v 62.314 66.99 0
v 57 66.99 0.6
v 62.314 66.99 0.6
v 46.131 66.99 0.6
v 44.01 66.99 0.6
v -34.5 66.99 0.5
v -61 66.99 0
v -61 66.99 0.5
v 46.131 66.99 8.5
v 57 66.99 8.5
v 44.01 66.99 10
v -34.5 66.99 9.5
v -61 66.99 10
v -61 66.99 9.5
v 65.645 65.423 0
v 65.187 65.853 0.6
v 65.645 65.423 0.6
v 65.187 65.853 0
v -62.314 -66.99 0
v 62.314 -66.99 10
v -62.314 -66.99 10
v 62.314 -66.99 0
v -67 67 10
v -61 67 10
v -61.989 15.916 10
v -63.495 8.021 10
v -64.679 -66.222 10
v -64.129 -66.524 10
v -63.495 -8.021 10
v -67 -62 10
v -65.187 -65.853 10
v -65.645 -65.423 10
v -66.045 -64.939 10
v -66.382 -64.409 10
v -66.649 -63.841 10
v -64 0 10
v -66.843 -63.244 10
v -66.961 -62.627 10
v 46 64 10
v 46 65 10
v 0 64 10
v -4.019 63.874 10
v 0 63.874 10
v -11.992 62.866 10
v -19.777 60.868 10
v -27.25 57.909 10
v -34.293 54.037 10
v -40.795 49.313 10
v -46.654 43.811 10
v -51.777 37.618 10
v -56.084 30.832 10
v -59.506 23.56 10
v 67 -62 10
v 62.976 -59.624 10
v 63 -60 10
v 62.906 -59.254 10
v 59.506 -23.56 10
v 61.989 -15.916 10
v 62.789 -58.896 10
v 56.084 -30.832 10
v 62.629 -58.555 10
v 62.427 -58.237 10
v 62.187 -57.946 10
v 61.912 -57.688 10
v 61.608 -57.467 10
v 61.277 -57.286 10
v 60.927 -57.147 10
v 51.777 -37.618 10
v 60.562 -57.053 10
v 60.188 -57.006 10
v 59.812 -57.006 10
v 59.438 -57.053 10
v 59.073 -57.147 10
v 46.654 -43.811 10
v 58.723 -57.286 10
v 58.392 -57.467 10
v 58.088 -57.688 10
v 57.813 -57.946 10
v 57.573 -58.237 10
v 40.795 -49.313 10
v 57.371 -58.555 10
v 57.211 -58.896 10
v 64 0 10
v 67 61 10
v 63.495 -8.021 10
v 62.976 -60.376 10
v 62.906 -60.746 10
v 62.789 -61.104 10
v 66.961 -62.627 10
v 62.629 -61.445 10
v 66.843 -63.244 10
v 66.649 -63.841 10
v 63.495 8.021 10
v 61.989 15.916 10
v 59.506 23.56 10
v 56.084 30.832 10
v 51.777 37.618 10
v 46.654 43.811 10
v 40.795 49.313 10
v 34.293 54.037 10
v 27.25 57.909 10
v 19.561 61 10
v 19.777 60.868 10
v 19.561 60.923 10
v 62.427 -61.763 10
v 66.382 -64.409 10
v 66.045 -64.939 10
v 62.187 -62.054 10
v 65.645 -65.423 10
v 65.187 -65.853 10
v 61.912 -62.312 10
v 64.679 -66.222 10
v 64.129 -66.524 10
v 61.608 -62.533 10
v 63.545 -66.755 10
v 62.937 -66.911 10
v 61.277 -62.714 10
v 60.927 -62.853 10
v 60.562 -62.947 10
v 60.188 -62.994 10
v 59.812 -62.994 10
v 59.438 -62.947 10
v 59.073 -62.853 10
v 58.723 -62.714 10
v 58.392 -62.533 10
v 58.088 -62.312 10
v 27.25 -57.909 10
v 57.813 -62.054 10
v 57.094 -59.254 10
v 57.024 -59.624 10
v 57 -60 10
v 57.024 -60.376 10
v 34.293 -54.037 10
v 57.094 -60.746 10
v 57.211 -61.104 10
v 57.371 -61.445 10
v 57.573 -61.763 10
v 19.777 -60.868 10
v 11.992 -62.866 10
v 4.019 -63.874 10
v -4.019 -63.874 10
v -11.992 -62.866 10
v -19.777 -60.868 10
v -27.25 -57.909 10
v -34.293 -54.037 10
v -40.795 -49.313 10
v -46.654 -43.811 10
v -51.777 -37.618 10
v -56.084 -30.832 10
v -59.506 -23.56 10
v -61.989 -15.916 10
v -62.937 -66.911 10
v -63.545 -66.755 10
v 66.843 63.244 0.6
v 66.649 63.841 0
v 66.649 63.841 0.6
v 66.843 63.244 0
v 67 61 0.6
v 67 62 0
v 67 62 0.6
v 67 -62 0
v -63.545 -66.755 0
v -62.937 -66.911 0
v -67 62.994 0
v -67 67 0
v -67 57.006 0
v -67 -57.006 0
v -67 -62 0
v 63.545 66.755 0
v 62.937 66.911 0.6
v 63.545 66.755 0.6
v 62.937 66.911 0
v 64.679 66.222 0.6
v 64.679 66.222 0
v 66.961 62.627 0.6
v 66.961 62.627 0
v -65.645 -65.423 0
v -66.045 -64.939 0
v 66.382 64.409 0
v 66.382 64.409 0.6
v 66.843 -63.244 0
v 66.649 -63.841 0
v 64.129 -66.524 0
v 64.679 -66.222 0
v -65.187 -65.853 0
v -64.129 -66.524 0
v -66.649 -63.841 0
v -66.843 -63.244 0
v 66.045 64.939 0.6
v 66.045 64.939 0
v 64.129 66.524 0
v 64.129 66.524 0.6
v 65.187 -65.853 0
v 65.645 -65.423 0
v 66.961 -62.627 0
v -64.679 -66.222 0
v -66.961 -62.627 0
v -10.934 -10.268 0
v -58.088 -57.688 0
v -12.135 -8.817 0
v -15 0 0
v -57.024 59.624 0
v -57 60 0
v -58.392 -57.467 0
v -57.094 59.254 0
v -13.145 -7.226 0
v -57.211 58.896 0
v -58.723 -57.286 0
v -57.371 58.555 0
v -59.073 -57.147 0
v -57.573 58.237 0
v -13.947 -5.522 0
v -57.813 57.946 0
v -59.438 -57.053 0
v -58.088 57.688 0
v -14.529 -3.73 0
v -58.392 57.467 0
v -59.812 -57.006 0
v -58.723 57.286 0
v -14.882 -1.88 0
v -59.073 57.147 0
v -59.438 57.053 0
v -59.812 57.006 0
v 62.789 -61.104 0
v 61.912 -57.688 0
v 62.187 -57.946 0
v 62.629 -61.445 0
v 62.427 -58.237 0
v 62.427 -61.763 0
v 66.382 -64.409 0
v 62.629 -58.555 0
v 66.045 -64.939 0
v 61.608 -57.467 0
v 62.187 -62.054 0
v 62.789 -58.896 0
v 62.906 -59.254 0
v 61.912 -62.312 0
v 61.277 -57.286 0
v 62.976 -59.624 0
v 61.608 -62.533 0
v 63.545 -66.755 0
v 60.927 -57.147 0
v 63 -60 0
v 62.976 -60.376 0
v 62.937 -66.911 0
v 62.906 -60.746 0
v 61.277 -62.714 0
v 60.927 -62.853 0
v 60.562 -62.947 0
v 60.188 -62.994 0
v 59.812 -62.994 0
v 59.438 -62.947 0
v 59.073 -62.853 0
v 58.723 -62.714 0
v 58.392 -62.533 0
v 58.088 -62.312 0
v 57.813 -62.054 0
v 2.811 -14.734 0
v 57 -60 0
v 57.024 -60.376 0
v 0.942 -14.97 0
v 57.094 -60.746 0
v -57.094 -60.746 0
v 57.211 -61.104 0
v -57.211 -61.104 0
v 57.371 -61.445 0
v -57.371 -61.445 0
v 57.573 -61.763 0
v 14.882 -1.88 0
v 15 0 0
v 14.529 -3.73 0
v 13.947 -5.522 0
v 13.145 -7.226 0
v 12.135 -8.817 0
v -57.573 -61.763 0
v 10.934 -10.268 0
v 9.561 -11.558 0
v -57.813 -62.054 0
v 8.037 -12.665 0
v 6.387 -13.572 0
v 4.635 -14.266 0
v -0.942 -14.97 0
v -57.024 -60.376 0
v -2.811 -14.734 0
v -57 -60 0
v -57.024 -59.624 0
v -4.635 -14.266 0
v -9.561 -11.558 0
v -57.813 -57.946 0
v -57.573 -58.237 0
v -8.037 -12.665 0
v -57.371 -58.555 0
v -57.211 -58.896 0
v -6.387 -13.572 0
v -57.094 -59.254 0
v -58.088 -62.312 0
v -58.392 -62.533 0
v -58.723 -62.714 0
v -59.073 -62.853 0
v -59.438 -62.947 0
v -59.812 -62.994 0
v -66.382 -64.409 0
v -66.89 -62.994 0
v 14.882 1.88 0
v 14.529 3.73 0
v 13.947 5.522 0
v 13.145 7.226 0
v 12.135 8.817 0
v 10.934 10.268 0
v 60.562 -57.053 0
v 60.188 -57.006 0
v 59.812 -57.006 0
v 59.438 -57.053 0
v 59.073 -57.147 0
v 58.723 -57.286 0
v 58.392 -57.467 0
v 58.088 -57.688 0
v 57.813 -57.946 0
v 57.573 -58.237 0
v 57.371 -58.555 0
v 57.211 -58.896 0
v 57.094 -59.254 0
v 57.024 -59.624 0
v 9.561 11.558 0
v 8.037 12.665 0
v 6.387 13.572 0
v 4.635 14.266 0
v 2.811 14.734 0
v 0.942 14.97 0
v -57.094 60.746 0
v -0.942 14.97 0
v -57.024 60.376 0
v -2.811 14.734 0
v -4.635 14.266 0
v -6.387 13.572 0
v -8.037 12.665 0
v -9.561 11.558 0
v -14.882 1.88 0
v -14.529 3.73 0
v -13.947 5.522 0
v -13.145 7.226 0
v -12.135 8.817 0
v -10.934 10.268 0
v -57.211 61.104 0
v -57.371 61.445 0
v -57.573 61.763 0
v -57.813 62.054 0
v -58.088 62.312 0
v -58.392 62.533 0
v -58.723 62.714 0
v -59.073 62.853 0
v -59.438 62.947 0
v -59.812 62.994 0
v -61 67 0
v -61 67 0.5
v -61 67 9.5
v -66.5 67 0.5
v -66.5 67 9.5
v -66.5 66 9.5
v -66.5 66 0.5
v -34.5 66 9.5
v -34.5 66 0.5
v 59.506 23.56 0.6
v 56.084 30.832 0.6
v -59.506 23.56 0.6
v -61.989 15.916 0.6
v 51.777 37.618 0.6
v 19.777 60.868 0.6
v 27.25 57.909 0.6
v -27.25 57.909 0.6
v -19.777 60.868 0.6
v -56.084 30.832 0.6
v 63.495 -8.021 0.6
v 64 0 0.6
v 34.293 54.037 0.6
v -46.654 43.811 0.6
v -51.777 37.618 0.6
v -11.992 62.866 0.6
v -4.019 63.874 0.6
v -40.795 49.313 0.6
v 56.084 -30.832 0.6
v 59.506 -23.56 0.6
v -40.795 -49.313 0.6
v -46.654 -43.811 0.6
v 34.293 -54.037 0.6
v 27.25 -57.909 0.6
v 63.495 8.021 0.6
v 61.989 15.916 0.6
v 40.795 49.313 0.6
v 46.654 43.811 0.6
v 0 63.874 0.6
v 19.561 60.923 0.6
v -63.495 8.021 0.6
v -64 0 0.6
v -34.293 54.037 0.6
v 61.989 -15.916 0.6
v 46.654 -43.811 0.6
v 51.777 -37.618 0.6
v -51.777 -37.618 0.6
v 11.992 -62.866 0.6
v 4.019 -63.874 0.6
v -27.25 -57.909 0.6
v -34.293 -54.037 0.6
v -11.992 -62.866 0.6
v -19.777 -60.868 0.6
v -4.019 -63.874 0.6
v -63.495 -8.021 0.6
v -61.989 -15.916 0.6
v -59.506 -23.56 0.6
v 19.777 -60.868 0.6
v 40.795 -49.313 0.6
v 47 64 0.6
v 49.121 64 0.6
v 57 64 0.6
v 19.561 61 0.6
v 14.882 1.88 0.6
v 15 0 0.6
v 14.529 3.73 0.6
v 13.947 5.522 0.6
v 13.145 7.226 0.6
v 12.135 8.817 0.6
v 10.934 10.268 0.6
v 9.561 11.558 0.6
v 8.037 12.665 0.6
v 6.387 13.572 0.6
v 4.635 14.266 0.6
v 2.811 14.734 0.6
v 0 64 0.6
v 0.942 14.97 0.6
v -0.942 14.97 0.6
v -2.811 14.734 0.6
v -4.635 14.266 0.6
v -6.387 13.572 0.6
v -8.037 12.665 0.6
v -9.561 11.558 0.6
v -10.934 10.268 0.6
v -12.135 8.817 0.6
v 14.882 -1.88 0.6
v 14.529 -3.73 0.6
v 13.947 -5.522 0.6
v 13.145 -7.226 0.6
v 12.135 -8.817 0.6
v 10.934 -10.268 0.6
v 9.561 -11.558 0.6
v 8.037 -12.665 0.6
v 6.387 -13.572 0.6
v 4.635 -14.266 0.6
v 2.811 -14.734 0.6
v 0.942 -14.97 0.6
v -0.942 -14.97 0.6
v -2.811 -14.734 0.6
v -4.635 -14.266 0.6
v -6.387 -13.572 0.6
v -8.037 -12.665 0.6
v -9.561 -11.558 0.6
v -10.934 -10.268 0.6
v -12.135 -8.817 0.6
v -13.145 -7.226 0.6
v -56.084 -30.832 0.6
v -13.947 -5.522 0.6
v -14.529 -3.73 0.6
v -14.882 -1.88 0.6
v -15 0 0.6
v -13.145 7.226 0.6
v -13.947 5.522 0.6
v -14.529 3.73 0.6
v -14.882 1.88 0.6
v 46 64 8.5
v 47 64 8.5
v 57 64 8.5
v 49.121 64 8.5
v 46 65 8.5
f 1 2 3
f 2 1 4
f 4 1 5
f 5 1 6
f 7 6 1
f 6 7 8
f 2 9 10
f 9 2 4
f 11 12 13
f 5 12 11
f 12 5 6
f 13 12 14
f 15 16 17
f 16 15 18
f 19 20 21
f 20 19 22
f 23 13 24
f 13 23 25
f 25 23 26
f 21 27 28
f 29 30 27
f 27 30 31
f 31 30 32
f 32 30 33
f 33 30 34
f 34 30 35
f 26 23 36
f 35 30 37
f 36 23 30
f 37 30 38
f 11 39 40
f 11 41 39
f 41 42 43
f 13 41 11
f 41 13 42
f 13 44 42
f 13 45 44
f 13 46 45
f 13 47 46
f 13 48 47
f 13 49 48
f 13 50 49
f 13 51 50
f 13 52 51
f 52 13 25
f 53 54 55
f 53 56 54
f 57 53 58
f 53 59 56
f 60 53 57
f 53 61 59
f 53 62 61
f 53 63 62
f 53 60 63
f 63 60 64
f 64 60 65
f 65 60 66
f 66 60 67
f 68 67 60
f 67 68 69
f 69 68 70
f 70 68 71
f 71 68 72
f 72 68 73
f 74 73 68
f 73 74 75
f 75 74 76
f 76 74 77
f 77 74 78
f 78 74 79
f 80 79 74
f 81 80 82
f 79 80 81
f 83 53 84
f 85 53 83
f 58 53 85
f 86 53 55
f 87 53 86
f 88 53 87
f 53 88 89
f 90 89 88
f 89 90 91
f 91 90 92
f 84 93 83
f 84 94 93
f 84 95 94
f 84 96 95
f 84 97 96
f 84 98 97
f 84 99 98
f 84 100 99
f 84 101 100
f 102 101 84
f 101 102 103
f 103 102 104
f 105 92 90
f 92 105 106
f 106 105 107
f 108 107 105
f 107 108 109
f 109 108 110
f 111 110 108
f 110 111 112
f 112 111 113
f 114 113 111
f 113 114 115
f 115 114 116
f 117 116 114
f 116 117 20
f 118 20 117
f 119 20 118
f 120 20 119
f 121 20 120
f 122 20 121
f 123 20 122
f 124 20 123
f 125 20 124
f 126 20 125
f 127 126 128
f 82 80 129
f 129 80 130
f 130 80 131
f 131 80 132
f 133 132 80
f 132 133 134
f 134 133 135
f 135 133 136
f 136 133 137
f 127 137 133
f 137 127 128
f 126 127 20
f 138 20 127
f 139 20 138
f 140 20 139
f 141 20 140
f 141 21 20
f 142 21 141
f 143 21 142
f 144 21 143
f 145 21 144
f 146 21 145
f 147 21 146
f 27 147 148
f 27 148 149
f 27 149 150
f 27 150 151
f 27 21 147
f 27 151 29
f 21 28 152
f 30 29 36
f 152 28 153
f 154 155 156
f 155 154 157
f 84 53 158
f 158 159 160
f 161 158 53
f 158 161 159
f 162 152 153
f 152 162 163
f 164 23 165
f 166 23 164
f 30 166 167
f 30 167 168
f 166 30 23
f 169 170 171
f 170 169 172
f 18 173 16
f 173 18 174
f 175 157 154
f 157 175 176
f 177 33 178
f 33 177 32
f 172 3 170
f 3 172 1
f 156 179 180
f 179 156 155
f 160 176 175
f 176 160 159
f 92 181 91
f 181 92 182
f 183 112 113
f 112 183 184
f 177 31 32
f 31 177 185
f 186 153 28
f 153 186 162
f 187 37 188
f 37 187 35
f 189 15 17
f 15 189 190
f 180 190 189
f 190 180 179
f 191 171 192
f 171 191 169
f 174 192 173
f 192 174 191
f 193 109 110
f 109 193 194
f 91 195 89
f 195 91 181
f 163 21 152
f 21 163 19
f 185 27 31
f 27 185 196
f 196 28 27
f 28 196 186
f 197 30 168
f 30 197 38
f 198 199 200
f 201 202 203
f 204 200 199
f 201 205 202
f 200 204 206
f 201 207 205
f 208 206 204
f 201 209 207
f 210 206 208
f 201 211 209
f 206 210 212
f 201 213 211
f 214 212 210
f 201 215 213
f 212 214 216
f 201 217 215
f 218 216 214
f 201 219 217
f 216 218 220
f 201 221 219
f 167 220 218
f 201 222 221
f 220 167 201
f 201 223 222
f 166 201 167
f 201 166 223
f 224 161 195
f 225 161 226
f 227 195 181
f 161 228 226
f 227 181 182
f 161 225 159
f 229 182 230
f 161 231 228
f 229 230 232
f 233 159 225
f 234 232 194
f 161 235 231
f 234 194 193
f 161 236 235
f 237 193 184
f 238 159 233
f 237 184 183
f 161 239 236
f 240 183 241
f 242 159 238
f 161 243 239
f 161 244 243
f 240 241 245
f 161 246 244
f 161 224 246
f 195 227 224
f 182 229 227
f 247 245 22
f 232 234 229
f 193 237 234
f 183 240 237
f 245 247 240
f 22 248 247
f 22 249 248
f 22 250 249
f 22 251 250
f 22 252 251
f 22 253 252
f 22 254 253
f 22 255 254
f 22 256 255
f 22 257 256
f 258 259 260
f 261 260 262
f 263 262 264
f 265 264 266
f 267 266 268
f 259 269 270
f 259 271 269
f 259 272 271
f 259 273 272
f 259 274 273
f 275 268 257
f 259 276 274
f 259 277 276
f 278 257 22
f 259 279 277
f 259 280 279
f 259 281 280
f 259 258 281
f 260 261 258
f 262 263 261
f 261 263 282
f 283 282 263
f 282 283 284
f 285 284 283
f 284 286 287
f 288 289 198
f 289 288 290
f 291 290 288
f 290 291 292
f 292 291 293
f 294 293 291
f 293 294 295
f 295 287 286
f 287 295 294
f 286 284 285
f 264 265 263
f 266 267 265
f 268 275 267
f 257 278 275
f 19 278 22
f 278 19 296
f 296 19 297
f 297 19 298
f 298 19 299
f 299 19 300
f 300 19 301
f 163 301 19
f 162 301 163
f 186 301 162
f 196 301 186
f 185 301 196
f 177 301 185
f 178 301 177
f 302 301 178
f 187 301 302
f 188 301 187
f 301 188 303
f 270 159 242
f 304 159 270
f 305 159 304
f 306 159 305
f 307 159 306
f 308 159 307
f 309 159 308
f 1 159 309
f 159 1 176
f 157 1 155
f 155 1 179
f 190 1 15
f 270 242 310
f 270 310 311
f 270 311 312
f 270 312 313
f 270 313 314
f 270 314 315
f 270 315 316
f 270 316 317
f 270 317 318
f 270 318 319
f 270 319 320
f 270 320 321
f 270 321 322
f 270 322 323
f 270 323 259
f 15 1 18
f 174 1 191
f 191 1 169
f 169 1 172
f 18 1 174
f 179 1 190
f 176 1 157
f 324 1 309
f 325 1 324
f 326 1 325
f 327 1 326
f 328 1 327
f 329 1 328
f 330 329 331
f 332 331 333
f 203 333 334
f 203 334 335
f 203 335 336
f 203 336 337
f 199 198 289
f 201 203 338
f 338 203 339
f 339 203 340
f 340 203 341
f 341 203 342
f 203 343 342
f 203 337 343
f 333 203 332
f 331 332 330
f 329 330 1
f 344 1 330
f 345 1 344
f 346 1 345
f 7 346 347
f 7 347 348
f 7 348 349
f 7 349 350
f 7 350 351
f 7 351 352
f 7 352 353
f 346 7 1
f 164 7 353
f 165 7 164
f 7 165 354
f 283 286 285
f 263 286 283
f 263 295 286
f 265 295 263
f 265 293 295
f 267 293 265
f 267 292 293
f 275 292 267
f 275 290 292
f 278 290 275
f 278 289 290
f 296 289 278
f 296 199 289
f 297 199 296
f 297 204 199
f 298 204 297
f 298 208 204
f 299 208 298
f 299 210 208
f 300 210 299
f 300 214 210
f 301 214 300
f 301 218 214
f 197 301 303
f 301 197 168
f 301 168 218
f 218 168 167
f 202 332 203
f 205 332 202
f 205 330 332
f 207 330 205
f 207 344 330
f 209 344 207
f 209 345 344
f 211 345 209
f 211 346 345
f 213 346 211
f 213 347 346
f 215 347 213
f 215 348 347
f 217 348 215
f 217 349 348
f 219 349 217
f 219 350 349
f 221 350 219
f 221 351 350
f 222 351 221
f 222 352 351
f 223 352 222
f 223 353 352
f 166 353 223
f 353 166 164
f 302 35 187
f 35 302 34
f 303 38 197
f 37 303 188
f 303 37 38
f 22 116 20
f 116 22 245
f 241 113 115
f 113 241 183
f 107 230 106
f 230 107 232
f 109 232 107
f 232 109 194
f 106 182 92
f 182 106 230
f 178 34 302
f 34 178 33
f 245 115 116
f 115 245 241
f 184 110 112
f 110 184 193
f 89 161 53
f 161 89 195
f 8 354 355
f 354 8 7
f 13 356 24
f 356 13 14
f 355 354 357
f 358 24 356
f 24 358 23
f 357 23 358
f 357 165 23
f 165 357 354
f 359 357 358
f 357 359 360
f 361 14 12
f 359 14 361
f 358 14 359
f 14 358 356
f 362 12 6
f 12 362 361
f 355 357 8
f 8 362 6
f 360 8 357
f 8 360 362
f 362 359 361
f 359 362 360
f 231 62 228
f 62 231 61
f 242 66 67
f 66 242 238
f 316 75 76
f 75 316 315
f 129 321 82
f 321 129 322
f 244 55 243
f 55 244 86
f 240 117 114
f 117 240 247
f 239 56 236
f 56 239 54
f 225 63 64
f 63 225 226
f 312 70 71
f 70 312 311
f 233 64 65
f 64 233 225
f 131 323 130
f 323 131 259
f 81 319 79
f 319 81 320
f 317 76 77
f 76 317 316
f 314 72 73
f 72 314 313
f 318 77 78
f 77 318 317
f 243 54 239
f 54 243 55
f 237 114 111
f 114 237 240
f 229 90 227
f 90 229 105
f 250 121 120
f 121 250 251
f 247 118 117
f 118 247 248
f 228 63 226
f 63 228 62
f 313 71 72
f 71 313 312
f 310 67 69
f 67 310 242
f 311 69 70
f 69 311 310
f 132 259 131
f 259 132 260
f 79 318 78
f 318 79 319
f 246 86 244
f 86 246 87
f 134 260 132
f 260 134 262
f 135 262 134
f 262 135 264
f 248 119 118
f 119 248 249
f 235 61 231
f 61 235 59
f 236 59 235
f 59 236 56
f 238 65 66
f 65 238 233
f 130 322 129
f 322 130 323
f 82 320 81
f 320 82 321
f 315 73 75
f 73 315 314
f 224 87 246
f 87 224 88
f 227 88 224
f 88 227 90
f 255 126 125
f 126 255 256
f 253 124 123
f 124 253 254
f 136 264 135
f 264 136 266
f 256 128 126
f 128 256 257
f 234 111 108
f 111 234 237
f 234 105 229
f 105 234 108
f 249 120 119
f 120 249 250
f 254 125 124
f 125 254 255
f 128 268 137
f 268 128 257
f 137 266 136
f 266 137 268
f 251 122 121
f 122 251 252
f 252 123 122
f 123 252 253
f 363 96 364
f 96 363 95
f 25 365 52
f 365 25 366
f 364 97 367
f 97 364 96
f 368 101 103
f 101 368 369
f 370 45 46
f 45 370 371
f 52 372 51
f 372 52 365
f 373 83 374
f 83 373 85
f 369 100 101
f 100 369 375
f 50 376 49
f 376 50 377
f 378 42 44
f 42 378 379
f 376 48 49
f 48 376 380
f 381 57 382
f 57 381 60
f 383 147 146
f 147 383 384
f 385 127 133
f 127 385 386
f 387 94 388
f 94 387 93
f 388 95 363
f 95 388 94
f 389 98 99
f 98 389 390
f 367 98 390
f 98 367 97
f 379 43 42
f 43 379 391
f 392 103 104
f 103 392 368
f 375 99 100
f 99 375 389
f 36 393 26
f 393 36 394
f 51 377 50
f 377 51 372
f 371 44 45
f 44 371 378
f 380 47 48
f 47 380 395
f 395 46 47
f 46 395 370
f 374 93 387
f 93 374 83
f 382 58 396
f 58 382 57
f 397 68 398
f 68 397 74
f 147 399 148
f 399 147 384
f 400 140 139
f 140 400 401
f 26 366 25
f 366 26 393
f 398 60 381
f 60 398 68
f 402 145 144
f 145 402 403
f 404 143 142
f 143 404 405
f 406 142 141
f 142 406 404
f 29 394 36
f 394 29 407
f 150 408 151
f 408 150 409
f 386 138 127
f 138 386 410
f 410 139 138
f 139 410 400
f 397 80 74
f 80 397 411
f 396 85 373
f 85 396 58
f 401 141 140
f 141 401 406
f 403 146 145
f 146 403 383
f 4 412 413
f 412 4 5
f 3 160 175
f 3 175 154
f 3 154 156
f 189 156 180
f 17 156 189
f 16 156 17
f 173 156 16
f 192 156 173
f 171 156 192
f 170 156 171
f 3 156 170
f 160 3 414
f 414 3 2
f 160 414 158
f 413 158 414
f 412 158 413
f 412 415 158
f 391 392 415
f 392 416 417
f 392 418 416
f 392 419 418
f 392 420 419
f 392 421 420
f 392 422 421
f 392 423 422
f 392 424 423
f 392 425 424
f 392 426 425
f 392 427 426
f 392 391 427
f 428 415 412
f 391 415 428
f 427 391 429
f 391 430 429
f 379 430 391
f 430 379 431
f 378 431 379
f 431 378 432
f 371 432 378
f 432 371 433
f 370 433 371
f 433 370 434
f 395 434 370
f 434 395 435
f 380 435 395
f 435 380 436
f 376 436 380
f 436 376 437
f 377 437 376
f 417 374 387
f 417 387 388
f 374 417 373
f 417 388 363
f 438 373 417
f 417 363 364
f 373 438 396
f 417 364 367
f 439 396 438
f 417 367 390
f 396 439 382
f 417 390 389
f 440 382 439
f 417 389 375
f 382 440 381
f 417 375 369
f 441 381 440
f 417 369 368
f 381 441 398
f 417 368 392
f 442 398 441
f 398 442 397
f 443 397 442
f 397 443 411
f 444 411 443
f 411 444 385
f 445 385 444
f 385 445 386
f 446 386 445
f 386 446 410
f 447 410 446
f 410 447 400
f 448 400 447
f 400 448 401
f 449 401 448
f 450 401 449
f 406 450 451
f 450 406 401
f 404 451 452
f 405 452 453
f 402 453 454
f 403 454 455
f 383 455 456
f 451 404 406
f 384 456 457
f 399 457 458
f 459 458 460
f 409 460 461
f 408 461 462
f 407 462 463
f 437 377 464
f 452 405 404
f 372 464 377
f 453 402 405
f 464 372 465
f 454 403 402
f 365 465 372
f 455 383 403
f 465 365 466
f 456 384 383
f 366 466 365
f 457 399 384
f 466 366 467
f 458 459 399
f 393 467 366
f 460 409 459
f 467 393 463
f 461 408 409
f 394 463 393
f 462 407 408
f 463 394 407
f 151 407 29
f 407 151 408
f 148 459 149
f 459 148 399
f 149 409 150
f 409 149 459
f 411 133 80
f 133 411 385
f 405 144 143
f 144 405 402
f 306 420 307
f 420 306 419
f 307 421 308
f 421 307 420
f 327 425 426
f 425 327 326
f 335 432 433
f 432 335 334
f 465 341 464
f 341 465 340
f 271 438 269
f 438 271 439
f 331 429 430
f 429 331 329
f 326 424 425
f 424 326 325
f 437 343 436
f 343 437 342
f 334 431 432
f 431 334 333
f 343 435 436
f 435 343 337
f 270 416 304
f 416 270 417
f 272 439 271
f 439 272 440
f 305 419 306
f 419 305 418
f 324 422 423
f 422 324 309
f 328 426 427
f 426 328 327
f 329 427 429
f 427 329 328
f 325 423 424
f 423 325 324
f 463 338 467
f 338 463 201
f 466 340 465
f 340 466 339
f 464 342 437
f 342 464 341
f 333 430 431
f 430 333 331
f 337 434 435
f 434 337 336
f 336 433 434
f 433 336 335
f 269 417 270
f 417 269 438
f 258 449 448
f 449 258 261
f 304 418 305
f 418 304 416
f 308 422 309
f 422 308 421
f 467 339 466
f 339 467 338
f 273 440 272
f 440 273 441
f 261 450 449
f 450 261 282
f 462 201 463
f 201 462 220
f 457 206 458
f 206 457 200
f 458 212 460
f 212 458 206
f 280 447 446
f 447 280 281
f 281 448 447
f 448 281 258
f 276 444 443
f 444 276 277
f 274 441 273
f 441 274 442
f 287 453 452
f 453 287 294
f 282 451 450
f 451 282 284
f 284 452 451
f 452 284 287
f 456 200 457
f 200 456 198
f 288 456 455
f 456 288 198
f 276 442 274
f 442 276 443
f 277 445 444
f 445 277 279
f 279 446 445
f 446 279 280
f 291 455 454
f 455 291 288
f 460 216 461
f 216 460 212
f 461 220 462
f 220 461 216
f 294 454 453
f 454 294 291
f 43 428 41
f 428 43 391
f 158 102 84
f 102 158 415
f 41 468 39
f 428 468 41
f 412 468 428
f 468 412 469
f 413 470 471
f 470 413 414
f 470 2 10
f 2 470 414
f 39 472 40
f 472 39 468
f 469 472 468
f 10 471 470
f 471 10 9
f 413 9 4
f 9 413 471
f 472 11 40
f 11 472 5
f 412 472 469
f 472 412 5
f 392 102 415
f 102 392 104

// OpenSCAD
$fn = 50;


difference() {
	union() {
		hull() {
			translate(v = [-62.0000000000, 62.0000000000, 0]) {
				cylinder(h = 10, r = 5);
			}
			translate(v = [62.0000000000, 62.0000000000, 0]) {
				cylinder(h = 10, r = 5);
			}
			translate(v = [-62.0000000000, -62.0000000000, 0]) {
				cylinder(h = 10, r = 5);
			}
			translate(v = [62.0000000000, -62.0000000000, 0]) {
				cylinder(h = 10, r = 5);
			}
		}
		translate(v = [-67.0000000000, 61.0000000000, 0]) {
			cube(size = [6, 6, 10]);
		}
	}
	union() {
		translate(v = [-67.5000000000, -60.0000000000, -250.0000000000]) {
			rotate(a = [0, 0, 0]) {
				difference() {
					union() {
						hull() {
							translate(v = [7.5000000000, 0, 0]) {
								cylinder(h = 250, r = 3.0000000000, r1 = 3.0000000000, r2 = 3.0000000000);
							}
							translate(v = [-7.5000000000, 0, 0]) {
								cylinder(h = 250, r = 3.0000000000, r1 = 3.0000000000, r2 = 3.0000000000);
							}
						}
					}
					union();
				}
			}
		}
		translate(v = [-67.5000000000, 60.0000000000, -250.0000000000]) {
			rotate(a = [0, 0, 0]) {
				difference() {
					union() {
						hull() {
							translate(v = [7.5000000000, 0, 0]) {
								cylinder(h = 250, r = 3.0000000000, r1 = 3.0000000000, r2 = 3.0000000000);
							}
							translate(v = [-7.5000000000, 0, 0]) {
								cylinder(h = 250, r = 3.0000000000, r1 = 3.0000000000, r2 = 3.0000000000);
							}
						}
					}
					union();
				}
			}
		}
		translate(v = [-66.5000000000, 66.0000000000, 0.5000000000]) {
			cube(size = [32, 1, 9.0000000000]);
		}
		translate(v = [60.0000000000, -60.0000000000, -50.0000000000]) {
			cylinder(h = 100, r = 3.0000000000);
		}
		translate(v = [0, 0, 0.6000000000]) {
			cylinder(h = 12.4000000000, r = 64.0000000000);
		}
		translate(v = [0, 0, -5.0000000000]) {
			cylinder(h = 10, r = 15.0000000000);
		}
		translate(v = [0.0000000000, 61.0000000000, 0.6000000000]) {
			cube(size = [67.0000000000, 3, 12.4000000000]);
		}
		translate(v = [57.0000000000, 61.0000000000, 0.6000000000]) {
			cube(size = [10, 6, 12.4000000000]);
		}
		translate(v = [46.0000000000, 61.0000000000, 8.5000000000]) {
			cube(size = [21, 6, 1.5000000000]);
		}
		translate(v = [43.2500000000, 67.7500000000, 0.6000000000]) {
			rotate(a = [0, 0, -45]) {
				cube(size = [7.5000000000, 1.5000000000, 12.4000000000]);
			}
		}
		translate(v = [12.0610000000, 59.0000000000, 0.6000000000]) {
			cube(size = [7.5000000000, 2, 9.4000000000]);
		}
	}
}
